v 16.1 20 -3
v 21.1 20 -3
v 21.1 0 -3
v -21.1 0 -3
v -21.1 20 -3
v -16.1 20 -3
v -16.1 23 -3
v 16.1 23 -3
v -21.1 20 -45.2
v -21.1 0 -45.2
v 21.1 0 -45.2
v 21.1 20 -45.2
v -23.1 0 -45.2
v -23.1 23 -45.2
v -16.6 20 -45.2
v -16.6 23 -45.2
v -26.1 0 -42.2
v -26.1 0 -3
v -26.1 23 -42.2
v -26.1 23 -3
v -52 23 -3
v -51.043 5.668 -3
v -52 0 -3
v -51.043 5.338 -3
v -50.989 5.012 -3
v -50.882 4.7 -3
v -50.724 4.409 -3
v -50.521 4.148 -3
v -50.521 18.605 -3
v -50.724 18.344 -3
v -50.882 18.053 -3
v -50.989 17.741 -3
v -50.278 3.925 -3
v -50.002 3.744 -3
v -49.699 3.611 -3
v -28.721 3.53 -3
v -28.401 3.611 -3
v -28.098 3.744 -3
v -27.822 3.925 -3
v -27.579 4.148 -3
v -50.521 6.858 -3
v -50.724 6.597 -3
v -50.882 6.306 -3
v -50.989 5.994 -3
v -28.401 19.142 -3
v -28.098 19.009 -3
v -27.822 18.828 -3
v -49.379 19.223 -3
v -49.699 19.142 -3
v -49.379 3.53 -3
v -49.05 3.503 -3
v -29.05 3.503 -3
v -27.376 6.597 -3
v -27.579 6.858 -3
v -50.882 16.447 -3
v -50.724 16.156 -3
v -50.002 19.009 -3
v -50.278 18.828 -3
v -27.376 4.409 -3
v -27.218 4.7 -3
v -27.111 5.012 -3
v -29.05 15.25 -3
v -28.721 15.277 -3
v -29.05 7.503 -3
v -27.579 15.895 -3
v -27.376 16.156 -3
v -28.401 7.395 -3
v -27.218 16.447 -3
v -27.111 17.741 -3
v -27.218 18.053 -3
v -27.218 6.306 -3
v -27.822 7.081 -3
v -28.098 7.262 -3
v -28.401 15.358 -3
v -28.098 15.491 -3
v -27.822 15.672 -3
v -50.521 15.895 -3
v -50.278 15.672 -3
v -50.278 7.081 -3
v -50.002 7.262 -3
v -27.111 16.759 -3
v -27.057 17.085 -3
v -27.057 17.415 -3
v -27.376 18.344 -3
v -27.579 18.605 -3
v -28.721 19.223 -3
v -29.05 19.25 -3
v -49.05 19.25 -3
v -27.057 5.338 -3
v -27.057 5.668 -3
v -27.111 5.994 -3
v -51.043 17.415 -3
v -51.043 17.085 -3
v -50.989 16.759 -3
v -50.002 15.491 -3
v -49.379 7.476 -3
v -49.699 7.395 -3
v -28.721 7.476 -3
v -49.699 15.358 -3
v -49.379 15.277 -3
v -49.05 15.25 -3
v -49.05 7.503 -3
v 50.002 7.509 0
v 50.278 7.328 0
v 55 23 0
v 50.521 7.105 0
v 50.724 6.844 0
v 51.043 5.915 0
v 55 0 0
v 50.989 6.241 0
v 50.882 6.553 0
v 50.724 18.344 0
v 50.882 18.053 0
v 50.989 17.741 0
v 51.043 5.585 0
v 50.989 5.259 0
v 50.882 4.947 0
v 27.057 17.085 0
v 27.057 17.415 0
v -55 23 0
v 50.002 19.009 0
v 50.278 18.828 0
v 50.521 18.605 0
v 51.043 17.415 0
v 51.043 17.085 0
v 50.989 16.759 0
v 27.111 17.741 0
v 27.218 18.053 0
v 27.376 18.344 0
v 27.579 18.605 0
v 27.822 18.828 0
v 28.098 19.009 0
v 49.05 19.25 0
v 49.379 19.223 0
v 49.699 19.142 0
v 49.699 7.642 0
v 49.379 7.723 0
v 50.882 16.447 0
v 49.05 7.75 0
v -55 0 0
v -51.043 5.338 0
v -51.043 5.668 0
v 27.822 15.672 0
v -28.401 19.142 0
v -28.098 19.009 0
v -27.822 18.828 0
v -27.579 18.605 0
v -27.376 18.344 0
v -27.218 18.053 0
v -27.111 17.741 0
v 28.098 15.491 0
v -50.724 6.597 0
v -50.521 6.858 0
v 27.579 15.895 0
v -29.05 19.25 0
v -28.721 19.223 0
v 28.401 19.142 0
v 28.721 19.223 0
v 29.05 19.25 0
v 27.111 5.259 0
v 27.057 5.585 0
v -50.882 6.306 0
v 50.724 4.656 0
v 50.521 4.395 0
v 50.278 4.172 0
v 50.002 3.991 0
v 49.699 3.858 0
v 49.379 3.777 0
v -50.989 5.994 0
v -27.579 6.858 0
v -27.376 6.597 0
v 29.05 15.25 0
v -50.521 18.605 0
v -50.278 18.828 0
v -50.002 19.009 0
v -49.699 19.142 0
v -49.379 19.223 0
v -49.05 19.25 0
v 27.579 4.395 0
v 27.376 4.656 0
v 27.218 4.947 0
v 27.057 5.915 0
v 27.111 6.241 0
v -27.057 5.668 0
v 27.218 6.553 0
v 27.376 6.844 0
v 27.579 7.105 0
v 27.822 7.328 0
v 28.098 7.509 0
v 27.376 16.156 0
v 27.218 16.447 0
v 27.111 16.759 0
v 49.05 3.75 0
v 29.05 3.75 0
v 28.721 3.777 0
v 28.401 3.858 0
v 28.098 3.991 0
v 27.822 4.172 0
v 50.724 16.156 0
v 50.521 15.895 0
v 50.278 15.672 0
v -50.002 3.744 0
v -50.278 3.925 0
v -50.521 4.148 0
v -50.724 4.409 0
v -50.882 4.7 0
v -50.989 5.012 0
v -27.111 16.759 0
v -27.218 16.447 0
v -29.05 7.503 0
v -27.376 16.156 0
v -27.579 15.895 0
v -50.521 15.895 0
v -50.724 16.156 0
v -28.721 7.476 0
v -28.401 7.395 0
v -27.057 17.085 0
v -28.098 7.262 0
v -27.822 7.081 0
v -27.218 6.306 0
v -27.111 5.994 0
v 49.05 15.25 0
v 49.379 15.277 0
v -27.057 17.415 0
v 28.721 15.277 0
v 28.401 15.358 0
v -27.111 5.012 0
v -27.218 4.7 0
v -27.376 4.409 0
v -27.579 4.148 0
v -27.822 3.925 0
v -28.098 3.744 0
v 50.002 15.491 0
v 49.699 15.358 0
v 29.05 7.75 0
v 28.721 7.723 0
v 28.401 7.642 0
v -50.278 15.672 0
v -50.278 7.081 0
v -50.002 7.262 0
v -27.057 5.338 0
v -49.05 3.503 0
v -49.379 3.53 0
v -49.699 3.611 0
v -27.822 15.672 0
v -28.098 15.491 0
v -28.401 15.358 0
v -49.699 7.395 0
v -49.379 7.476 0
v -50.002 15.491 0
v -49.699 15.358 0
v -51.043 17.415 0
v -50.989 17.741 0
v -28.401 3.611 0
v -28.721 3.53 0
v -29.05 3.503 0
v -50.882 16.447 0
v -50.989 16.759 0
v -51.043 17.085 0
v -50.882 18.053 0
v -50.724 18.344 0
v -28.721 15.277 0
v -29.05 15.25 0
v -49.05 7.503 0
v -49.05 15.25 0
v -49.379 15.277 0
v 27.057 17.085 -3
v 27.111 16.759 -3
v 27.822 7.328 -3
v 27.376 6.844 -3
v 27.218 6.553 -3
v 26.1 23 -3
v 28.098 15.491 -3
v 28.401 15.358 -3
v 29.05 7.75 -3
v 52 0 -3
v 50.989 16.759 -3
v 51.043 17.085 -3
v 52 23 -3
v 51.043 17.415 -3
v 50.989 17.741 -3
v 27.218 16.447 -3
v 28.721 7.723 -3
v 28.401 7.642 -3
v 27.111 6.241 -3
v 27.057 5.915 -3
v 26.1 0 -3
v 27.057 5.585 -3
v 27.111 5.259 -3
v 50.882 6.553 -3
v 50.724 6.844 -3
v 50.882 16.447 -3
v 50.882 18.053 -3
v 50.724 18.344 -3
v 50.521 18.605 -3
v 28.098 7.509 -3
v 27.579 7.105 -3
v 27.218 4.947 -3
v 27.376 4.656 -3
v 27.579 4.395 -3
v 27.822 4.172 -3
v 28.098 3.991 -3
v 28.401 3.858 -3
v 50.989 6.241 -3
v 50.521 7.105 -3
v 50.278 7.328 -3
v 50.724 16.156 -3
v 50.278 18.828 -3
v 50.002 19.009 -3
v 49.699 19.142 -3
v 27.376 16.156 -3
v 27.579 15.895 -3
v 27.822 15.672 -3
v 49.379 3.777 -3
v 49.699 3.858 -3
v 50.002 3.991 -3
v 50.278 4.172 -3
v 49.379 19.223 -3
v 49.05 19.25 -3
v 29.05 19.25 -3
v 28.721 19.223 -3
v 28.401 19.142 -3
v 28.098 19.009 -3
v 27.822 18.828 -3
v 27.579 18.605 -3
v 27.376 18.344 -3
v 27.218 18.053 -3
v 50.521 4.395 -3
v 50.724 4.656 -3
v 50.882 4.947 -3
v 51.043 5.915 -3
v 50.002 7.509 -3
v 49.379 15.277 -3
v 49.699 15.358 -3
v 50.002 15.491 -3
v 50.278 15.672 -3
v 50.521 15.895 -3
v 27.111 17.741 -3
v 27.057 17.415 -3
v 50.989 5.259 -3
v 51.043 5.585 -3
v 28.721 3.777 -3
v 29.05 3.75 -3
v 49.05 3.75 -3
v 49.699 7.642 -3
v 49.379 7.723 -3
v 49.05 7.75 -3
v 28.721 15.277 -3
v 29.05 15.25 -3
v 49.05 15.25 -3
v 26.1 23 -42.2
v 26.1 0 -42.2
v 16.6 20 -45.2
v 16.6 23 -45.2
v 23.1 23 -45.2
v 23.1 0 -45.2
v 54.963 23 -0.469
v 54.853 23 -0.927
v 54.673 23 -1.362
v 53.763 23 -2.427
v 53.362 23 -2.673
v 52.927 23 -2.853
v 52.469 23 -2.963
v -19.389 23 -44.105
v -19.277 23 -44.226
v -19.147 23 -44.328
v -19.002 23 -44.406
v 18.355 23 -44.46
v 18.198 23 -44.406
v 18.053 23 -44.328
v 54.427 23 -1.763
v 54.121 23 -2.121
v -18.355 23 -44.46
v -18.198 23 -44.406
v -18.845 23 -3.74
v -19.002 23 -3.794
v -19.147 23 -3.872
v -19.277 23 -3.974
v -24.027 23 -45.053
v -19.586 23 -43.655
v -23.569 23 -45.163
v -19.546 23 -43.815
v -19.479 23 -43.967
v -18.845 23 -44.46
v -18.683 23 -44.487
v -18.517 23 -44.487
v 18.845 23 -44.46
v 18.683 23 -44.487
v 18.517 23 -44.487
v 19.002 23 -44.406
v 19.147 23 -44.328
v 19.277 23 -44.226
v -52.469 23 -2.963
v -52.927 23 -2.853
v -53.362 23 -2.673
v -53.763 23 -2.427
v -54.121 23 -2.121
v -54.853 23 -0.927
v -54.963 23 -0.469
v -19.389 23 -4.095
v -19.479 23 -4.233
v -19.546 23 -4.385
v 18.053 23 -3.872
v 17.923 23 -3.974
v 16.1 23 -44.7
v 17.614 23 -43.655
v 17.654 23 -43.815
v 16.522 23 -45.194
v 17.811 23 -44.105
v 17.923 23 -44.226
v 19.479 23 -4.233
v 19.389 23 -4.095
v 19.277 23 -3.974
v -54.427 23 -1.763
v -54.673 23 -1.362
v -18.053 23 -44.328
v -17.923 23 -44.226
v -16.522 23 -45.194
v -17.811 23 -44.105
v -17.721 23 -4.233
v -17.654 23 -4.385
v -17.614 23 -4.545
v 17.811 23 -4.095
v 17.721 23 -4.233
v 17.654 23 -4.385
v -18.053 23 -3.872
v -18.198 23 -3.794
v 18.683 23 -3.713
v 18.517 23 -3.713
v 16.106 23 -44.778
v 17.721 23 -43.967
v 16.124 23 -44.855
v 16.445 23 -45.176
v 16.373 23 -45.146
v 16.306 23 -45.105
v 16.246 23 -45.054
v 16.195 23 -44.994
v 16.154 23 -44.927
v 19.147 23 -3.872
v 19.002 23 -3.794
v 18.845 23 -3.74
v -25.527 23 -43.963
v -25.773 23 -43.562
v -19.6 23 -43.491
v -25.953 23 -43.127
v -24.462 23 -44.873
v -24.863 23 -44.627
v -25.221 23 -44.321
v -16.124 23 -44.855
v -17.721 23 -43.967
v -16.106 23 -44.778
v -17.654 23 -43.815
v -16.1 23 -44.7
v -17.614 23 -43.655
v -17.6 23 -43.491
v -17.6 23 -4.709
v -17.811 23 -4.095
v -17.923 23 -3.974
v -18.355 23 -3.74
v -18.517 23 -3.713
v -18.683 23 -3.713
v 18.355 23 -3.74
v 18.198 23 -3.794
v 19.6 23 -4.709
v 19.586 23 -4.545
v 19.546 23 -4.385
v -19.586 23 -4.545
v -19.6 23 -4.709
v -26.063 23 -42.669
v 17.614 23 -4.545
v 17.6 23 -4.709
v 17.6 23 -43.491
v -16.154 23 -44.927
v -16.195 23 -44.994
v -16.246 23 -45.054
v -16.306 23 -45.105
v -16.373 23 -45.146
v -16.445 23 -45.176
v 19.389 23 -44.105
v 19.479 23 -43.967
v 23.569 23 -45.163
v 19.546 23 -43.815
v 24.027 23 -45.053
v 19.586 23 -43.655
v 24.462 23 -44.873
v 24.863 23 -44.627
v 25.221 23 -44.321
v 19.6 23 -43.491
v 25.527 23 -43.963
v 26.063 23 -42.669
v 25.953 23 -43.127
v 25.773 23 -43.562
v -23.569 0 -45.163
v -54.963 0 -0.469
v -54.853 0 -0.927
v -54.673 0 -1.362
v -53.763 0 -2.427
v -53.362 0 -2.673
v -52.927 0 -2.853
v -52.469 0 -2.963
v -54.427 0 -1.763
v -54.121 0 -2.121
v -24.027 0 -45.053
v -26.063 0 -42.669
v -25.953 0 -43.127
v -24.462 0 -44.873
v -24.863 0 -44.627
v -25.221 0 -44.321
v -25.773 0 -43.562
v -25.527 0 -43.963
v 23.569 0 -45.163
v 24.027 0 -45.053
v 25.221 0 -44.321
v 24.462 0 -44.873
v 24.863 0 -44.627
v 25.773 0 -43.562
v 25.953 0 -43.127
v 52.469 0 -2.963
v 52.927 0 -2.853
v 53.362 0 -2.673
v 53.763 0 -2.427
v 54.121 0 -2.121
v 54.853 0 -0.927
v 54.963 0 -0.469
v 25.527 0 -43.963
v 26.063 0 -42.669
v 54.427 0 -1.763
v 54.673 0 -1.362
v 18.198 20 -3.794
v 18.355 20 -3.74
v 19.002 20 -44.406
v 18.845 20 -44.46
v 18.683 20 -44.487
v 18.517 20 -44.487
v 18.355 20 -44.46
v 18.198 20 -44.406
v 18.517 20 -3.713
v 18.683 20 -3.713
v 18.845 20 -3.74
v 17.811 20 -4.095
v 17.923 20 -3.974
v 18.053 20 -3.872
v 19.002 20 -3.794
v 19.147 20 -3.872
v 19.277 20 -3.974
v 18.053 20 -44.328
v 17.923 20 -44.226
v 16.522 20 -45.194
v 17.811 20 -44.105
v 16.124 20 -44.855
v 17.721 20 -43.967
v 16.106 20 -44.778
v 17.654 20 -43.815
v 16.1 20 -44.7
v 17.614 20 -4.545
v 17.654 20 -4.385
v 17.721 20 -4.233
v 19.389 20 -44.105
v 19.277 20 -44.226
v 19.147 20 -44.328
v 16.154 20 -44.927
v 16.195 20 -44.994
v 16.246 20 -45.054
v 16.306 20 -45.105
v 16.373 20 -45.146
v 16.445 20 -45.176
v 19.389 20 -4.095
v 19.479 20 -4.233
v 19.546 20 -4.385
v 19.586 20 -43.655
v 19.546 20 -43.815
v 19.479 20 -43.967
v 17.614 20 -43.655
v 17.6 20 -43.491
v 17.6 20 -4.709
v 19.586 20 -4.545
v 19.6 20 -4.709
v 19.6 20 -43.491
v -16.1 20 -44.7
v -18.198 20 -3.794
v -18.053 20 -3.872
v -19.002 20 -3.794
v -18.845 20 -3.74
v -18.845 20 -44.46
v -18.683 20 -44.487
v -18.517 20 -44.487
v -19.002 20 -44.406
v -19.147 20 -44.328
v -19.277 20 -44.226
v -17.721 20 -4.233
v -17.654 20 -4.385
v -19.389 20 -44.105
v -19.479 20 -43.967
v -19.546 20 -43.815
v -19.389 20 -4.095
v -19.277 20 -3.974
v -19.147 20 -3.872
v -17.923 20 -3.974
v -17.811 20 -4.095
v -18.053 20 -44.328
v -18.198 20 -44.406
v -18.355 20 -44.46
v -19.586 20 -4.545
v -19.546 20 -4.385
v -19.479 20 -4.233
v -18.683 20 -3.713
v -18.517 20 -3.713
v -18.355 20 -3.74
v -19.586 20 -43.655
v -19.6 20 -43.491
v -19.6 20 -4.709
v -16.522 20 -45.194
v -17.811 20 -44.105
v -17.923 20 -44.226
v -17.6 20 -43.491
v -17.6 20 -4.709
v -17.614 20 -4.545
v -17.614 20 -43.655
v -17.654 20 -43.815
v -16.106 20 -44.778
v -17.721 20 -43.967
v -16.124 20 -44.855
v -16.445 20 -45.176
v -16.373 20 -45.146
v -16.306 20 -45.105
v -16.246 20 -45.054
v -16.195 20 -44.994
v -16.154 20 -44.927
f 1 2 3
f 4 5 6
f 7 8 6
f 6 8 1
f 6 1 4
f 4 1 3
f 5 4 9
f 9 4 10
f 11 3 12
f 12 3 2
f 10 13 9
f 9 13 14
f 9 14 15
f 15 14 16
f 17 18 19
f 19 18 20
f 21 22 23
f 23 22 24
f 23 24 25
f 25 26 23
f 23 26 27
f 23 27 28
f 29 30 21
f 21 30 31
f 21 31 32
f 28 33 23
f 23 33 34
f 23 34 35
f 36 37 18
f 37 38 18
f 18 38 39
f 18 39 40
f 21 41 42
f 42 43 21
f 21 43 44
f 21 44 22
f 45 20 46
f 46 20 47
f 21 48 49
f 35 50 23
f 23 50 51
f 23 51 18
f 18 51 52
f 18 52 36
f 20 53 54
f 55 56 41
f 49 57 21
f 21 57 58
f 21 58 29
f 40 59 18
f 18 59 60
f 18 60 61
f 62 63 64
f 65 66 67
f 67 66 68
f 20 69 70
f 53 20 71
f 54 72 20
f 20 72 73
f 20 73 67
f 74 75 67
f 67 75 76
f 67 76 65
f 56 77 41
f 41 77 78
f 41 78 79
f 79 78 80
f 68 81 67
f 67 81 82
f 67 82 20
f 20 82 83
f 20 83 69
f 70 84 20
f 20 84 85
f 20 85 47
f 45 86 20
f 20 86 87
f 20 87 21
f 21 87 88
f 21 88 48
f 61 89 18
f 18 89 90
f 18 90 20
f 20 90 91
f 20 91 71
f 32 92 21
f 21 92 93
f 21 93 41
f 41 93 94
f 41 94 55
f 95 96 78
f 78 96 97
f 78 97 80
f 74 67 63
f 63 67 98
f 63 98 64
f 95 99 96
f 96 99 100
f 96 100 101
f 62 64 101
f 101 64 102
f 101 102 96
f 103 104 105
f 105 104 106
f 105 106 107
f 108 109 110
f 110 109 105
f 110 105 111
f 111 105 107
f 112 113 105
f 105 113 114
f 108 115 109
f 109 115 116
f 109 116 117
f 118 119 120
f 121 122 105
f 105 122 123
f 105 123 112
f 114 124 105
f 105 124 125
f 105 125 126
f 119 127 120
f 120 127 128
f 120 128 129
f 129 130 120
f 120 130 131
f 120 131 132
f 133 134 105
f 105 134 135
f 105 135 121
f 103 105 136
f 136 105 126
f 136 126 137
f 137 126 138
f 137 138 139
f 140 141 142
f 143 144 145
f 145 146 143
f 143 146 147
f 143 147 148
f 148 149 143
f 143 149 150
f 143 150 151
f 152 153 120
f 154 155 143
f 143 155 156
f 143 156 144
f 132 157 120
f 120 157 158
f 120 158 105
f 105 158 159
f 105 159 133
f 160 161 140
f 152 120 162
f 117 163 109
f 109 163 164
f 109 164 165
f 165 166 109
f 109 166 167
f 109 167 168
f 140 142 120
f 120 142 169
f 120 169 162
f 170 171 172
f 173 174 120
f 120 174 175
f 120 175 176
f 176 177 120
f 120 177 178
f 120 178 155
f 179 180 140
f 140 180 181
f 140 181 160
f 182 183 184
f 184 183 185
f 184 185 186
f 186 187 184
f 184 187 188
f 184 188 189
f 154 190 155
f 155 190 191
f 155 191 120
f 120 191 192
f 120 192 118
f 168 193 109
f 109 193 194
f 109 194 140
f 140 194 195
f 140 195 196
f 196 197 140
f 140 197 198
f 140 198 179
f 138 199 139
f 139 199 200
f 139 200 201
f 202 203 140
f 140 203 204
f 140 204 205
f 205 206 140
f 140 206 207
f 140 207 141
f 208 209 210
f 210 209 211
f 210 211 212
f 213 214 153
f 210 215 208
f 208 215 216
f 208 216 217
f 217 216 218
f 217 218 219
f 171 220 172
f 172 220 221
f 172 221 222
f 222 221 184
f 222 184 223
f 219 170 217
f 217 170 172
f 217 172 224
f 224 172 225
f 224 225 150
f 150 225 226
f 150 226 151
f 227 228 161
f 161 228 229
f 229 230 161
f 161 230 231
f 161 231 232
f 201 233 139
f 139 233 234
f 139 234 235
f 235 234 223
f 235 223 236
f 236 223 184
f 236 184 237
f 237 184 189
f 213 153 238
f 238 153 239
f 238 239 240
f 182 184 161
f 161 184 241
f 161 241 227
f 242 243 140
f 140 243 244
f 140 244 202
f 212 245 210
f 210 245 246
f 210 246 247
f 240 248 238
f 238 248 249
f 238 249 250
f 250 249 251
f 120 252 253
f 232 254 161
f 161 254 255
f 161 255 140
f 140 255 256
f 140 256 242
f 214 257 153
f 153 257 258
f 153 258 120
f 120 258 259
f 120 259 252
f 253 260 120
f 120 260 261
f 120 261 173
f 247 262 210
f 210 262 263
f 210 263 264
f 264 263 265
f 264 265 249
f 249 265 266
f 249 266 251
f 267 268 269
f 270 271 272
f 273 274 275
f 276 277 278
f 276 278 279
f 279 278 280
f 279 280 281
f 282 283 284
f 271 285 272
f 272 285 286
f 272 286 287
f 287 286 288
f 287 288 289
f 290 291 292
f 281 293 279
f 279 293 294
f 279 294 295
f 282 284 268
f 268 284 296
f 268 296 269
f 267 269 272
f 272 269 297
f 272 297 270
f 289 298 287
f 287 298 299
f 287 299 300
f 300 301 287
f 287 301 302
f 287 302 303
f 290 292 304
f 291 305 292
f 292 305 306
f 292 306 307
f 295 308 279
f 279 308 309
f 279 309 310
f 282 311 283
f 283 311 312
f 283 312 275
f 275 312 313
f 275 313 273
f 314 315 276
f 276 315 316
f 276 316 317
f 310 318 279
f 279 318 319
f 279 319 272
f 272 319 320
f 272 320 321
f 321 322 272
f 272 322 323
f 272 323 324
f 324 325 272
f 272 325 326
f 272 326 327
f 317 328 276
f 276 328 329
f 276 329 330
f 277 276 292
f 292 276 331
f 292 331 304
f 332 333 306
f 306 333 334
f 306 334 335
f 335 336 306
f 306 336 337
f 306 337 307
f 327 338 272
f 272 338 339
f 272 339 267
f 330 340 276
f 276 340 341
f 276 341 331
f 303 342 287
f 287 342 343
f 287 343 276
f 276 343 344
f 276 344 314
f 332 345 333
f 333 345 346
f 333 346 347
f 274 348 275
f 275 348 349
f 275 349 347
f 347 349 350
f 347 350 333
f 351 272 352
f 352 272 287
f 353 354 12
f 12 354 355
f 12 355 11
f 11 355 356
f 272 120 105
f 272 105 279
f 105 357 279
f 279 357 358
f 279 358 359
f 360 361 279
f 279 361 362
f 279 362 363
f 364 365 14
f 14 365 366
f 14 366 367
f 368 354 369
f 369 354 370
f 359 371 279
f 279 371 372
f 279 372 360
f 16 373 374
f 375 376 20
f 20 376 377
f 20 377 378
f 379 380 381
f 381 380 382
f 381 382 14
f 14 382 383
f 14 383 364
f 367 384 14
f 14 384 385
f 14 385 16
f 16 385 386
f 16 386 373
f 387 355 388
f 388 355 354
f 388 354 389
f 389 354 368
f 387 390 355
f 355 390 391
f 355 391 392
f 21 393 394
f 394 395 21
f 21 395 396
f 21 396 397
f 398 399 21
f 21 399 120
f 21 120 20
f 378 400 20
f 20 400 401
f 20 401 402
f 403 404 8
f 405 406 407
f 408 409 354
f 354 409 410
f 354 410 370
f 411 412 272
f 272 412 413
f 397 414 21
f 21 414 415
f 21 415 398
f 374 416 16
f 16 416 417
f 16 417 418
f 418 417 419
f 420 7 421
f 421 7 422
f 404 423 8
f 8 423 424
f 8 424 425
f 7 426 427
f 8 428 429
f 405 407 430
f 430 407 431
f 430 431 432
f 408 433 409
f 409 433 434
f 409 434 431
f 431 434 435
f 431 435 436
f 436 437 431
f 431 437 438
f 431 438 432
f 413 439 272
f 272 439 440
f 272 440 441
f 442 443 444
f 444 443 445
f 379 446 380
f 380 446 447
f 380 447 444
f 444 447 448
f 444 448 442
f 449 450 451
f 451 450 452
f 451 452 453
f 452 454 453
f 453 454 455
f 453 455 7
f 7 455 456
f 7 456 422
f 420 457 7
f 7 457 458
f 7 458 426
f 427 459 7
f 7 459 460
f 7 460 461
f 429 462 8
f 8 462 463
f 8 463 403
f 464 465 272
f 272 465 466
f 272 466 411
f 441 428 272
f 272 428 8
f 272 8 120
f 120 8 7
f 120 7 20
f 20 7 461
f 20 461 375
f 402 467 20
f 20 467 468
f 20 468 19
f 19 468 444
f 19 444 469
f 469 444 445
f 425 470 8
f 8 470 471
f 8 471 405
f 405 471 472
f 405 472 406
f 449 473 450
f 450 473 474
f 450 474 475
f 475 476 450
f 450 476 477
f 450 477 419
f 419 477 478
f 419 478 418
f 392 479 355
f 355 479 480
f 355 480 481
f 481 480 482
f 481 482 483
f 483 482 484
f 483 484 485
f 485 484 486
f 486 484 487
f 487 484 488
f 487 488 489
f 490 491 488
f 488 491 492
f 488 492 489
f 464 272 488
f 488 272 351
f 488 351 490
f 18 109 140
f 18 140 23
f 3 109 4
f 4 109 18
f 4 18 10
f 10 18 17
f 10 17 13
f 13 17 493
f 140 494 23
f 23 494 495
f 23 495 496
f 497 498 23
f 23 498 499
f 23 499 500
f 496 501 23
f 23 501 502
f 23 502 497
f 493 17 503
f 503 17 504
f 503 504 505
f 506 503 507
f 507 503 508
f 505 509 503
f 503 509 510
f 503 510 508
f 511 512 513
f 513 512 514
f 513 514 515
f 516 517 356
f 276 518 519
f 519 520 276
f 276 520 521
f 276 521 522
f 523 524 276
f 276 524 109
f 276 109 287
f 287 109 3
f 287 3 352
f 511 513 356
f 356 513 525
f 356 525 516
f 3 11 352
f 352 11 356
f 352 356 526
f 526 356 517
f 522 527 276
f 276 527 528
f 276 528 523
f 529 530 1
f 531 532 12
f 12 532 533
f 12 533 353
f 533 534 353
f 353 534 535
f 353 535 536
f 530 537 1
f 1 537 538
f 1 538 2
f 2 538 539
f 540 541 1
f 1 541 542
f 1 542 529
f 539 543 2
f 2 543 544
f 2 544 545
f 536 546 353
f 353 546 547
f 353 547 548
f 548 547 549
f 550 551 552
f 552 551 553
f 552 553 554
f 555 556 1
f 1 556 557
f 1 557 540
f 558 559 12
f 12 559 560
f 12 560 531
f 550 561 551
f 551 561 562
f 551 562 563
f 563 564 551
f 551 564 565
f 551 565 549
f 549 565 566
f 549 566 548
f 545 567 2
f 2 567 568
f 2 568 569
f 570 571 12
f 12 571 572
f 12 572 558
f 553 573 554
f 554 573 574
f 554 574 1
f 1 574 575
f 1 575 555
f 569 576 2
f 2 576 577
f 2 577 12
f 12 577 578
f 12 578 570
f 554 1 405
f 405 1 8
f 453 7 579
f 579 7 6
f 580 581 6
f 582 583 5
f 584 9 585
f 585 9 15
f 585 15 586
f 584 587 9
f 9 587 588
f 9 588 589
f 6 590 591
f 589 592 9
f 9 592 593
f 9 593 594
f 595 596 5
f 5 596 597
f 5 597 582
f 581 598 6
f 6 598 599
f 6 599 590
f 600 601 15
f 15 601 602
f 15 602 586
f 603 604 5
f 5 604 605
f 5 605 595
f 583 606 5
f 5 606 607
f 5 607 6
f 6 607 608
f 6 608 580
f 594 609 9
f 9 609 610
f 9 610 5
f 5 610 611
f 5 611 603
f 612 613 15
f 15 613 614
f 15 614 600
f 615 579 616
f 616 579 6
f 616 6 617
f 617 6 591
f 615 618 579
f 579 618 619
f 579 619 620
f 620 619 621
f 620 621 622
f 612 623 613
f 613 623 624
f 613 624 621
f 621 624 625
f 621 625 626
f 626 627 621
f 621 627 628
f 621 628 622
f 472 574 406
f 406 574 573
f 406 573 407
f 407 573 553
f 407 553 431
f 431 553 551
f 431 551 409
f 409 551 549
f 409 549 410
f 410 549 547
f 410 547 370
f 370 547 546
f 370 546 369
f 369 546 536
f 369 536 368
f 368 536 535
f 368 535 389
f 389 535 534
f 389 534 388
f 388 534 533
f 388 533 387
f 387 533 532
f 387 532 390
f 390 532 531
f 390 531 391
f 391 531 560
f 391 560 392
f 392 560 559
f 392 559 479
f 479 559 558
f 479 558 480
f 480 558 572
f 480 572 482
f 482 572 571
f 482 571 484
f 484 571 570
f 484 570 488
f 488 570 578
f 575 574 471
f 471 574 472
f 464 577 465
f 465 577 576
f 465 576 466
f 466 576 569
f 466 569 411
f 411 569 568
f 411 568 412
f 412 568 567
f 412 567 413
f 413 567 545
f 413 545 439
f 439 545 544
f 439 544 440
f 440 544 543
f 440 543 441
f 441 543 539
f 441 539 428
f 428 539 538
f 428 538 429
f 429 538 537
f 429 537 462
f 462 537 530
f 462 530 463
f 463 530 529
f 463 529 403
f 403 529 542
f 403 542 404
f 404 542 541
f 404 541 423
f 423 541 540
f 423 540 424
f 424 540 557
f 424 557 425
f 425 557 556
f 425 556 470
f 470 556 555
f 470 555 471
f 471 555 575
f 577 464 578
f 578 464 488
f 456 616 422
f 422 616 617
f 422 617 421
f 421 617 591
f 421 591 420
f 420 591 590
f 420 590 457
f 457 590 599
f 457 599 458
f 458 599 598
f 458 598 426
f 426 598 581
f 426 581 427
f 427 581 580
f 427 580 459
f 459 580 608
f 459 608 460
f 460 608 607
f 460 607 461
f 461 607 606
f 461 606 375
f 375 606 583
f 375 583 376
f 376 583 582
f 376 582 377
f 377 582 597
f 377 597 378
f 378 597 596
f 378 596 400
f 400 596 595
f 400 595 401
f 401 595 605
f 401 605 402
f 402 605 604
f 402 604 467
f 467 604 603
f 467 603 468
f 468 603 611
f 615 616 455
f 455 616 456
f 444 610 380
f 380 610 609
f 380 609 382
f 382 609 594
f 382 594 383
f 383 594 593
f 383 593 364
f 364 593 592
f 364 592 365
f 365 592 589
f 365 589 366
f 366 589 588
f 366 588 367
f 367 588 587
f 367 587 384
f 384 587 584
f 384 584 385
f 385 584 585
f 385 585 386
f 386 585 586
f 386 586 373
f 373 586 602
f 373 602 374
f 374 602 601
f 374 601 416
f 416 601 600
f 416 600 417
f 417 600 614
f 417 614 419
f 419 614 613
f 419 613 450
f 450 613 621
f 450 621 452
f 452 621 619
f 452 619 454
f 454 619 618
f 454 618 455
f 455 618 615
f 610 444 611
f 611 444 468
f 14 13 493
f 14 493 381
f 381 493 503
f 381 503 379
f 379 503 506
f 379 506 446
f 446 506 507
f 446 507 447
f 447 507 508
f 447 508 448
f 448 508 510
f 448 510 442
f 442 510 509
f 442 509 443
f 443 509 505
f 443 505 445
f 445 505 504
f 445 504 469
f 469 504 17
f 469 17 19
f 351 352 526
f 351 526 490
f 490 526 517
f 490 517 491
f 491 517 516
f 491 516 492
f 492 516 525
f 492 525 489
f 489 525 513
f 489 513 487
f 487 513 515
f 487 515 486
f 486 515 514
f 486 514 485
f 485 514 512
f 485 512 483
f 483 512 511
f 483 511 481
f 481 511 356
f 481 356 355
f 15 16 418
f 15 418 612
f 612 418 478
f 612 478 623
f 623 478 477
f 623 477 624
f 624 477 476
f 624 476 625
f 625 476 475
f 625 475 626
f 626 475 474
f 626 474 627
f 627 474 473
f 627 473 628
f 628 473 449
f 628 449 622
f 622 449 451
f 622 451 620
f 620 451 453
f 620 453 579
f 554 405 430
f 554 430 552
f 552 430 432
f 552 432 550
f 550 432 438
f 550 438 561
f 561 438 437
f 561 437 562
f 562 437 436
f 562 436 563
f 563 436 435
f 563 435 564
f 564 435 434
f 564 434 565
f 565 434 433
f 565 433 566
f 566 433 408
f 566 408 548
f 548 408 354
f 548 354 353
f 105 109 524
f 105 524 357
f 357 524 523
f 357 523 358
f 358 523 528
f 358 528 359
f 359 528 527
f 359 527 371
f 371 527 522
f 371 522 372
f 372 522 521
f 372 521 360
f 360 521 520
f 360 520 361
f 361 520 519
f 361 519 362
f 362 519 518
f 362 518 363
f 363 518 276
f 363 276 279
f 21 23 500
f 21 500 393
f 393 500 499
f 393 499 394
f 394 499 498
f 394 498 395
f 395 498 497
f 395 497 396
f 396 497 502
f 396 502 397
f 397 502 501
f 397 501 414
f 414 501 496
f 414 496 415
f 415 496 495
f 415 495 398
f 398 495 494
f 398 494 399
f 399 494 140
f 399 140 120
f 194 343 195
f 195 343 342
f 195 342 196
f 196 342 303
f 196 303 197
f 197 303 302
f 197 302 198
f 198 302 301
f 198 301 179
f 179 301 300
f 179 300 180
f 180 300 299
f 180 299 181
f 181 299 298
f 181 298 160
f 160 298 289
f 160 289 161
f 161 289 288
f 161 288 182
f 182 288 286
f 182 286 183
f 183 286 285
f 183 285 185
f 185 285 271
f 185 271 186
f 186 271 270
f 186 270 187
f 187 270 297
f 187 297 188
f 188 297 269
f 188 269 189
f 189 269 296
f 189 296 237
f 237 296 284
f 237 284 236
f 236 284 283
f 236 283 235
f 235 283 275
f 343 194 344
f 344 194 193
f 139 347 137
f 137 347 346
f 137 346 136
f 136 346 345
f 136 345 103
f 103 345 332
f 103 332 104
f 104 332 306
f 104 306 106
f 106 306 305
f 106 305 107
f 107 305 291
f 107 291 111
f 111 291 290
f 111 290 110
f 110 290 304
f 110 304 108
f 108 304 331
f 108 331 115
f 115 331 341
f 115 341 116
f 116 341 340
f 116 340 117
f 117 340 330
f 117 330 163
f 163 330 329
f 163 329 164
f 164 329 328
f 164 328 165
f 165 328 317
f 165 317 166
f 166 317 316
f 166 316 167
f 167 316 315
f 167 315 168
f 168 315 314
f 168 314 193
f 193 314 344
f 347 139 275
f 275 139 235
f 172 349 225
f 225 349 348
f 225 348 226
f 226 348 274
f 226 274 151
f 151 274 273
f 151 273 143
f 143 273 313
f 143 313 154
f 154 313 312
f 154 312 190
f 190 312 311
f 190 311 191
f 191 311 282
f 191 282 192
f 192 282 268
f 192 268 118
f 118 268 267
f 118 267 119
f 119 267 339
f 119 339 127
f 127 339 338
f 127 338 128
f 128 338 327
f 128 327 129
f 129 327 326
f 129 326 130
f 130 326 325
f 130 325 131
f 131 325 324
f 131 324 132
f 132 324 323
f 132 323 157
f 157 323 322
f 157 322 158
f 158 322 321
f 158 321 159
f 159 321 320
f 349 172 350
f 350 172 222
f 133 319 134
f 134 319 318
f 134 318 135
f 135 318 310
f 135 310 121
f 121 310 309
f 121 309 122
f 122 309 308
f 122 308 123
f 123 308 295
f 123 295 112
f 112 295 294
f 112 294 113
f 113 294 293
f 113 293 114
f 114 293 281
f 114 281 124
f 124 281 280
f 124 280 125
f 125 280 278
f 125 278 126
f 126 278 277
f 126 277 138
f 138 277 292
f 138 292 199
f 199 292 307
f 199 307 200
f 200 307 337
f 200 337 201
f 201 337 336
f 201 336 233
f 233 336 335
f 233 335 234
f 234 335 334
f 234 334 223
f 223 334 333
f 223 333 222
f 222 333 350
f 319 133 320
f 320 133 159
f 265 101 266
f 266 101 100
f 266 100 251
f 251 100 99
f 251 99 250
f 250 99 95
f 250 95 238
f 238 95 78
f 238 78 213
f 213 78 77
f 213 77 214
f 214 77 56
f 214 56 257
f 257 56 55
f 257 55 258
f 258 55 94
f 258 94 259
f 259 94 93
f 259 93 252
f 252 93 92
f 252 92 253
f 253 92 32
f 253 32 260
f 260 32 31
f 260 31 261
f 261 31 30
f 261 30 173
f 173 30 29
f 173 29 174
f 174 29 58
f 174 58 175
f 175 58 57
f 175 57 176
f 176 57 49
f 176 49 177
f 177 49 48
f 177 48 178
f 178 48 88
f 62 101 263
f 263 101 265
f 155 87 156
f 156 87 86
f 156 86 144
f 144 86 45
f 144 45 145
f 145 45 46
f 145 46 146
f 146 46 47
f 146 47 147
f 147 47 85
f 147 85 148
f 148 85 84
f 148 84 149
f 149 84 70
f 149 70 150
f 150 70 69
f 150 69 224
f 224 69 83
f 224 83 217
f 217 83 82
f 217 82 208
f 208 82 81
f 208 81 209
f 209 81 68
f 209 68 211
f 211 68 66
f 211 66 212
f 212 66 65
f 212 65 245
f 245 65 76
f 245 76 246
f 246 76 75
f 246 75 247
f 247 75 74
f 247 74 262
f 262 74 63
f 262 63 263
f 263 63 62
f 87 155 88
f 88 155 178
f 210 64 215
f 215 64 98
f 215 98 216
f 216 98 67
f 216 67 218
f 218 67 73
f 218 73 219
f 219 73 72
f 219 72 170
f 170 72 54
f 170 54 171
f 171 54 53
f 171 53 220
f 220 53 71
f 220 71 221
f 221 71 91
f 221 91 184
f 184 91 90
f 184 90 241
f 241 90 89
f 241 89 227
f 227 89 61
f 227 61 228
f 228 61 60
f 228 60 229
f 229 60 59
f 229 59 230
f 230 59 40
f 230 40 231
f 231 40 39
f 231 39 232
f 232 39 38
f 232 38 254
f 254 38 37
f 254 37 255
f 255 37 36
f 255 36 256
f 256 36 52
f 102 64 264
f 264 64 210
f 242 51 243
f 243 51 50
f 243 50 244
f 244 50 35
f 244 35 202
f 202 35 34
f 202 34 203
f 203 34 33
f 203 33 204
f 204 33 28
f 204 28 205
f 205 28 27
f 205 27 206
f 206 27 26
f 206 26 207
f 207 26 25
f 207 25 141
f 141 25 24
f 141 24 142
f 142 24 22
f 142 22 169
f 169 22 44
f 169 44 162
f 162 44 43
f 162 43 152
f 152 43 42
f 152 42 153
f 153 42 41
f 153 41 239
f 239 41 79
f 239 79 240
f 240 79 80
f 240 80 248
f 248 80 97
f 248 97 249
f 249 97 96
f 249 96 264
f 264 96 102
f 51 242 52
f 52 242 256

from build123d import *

# Parameters (mm, degrees)
BOSS_EXTRUDE5_DEPTH = 23
SKETCH3_W           = 5
SKETCH3_H           = 3
BOSS_EXTRUDE7_DEPTH = 42.2
CUT_EXTRUDE3_DEPTH  = 42.2
CUT_EXTRUDE4_DEPTH  = 42.2
FILLET1_R           = 3
FILLET2_R           = 3
FILLET3_R           = 0.5
FILLET4_R           = 0.5
FILLET5_R           = 3
FILLET6_R           = 3
CUT_EXTRUDE5_DEPTH  = 42.2
CUT_EXTRUDE6_DEPTH  = 42.2
CUT_EXTRUDE7_DEPTH  = 42.2


with BuildPart() as part:
    # Sketch1 → Boss-Extrude5 (new body)
    with BuildSketch(Plane(origin=(0, 0, 0), x_dir=(1, 0, 0), z_dir=(0, 1, 0))):
        Polygon((-55, 0), (55, 0), (55, 3), (26.1, 3), (26.1, 45.2), (21.1, 45.2), (21.1, 3), (-21.1, 3), (-21.1, 45.2), (-26.1, 45.2), (-26.1, 3), (-55, 3), align=None)
    extrude(amount=BOSS_EXTRUDE5_DEPTH)

    # Sketch3 → Boss-Extrude7 (add)
    with BuildSketch(Plane(origin=(0, 0, -3), x_dir=(-1, 0, 0), z_dir=(0, 0, -1))):
        with Locations((-18.6, 21.5)):
            Rectangle(SKETCH3_W, SKETCH3_H)
        with Locations((18.6, 21.5)):
            Rectangle(SKETCH3_W, SKETCH3_H)
    extrude(amount=BOSS_EXTRUDE7_DEPTH)

    # Sketch5 → Cut-Extrude3 (cut)
    with BuildSketch(Plane(origin=(0, 20, 0), x_dir=(-1, 0, 0), z_dir=(0, -1, 0))):
        with BuildLine():
            Line((-17.6, 43.490720045), (-17.6, 4.709279955))
            ThreePointArc((-17.6, 4.709279955), (-18.6, 3.709279955), (-19.6, 4.709279955))
            Line((-19.6, 4.709279955), (-19.6, 43.490720045))
            ThreePointArc((-19.6, 43.490720045), (-18.6, 44.490720045), (-17.6, 43.490720045))
        make_face()
    extrude(amount=-CUT_EXTRUDE3_DEPTH, mode=Mode.SUBTRACT)

    # Sketch5<4> → Cut-Extrude4 (cut)
    with BuildSketch(Plane(origin=(0, 20, 0), x_dir=(-1, 0, 0), z_dir=(0, -1, 0))):
        with BuildLine():
            Line((17.6, 4.709279955), (17.6, 43.490720045))
            ThreePointArc((17.6, 43.490720045), (18.6, 44.490720045), (19.6, 43.490720045))
            Line((19.6, 43.490720045), (19.6, 4.709279955))
            ThreePointArc((19.6, 4.709279955), (18.6, 3.709279955), (17.6, 4.709279955))
        make_face()
    extrude(amount=-CUT_EXTRUDE4_DEPTH, mode=Mode.SUBTRACT)

    # Fillet1
    fillet1_edges = [part.edges().sort_by_distance(p)[0] for p in [
        (-26.1, 11.5, -45.2),
    ]]
    fillet(fillet1_edges, radius=FILLET1_R)

    # Fillet2
    fillet2_edges = [part.edges().sort_by_distance(p)[0] for p in [
        (26.1, 11.5, -45.2),
    ]]
    fillet(fillet2_edges, radius=FILLET2_R)

    # Fillet3
    fillet3_edges = [part.edges().sort_by_distance(p)[0] for p in [
        (-16.1, 21.5, -45.2),
    ]]
    fillet(fillet3_edges, radius=FILLET3_R)

    # Fillet4
    fillet4_edges = [part.edges().sort_by_distance(p)[0] for p in [
        (16.1, 21.5, -45.2),
    ]]
    fillet(fillet4_edges, radius=FILLET4_R)

    # Fillet5
    fillet5_edges = [part.edges().sort_by_distance(p)[0] for p in [
        (55, 11.5, -3),
    ]]
    fillet(fillet5_edges, radius=FILLET5_R - 0.0001)  # a hair under: the kernel refuses the full size

    # Fillet6
    fillet6_edges = [part.edges().sort_by_distance(p)[0] for p in [
        (-55, 11.5, -3),
    ]]
    fillet(fillet6_edges, radius=FILLET6_R - 0.0001)  # a hair under: the kernel refuses the full size

    # Sketch6 → Cut-Extrude5 (cut)
    with BuildSketch(Plane(origin=(0, 0, -3), x_dir=(-1, 0, 0), z_dir=(0, 0, -1))):
        with BuildLine():
            Line((-29.05, 15.25), (-49.05, 15.25))
            ThreePointArc((-49.05, 15.25), (-51.05, 17.25), (-49.05, 19.25))
            Line((-49.05, 19.25), (-29.05, 19.25))
            ThreePointArc((-29.05, 19.25), (-27.05, 17.25), (-29.05, 15.25))
        make_face()
        with BuildLine():
            Line((-29.05, 3.75), (-49.05, 3.75))
            ThreePointArc((-49.05, 3.75), (-51.05, 5.75), (-49.05, 7.75))
            Line((-49.05, 7.75), (-29.05, 7.75))
            ThreePointArc((-29.05, 7.75), (-27.05, 5.75), (-29.05, 3.75))
        make_face()
    extrude(amount=-CUT_EXTRUDE5_DEPTH, mode=Mode.SUBTRACT)

    # Sketch7 → Cut-Extrude6 (cut)
    with BuildSketch(Plane(origin=(0, 0, -3), x_dir=(-1, 0, 0), z_dir=(0, 0, -1))):
        with BuildLine():
            Line((49.05, 15.25), (29.05, 15.25))
            ThreePointArc((29.05, 15.25), (27.05, 17.25), (29.05, 19.25))
            Line((29.05, 19.25), (49.05, 19.25))
            ThreePointArc((49.05, 19.25), (51.05, 17.25), (49.05, 15.25))
        make_face()
    extrude(amount=-CUT_EXTRUDE6_DEPTH, mode=Mode.SUBTRACT)

    # Sketch7<3> → Cut-Extrude7 (cut)
    with BuildSketch(Plane(origin=(0, 0, -3), x_dir=(-1, 0, 0), z_dir=(0, 0, -1))):
        with BuildLine():
            Line((29.05, 7.503040911), (49.05, 7.503040911))
            ThreePointArc((49.05, 7.503040911), (51.05, 5.503040911), (49.05, 3.503040911))
            Line((49.05, 3.503040911), (29.05, 3.503040911))
            ThreePointArc((29.05, 3.503040911), (27.05, 5.503040911), (29.05, 7.503040911))
        make_face()
    extrude(amount=-CUT_EXTRUDE7_DEPTH, mode=Mode.SUBTRACT)


solid = part.part
